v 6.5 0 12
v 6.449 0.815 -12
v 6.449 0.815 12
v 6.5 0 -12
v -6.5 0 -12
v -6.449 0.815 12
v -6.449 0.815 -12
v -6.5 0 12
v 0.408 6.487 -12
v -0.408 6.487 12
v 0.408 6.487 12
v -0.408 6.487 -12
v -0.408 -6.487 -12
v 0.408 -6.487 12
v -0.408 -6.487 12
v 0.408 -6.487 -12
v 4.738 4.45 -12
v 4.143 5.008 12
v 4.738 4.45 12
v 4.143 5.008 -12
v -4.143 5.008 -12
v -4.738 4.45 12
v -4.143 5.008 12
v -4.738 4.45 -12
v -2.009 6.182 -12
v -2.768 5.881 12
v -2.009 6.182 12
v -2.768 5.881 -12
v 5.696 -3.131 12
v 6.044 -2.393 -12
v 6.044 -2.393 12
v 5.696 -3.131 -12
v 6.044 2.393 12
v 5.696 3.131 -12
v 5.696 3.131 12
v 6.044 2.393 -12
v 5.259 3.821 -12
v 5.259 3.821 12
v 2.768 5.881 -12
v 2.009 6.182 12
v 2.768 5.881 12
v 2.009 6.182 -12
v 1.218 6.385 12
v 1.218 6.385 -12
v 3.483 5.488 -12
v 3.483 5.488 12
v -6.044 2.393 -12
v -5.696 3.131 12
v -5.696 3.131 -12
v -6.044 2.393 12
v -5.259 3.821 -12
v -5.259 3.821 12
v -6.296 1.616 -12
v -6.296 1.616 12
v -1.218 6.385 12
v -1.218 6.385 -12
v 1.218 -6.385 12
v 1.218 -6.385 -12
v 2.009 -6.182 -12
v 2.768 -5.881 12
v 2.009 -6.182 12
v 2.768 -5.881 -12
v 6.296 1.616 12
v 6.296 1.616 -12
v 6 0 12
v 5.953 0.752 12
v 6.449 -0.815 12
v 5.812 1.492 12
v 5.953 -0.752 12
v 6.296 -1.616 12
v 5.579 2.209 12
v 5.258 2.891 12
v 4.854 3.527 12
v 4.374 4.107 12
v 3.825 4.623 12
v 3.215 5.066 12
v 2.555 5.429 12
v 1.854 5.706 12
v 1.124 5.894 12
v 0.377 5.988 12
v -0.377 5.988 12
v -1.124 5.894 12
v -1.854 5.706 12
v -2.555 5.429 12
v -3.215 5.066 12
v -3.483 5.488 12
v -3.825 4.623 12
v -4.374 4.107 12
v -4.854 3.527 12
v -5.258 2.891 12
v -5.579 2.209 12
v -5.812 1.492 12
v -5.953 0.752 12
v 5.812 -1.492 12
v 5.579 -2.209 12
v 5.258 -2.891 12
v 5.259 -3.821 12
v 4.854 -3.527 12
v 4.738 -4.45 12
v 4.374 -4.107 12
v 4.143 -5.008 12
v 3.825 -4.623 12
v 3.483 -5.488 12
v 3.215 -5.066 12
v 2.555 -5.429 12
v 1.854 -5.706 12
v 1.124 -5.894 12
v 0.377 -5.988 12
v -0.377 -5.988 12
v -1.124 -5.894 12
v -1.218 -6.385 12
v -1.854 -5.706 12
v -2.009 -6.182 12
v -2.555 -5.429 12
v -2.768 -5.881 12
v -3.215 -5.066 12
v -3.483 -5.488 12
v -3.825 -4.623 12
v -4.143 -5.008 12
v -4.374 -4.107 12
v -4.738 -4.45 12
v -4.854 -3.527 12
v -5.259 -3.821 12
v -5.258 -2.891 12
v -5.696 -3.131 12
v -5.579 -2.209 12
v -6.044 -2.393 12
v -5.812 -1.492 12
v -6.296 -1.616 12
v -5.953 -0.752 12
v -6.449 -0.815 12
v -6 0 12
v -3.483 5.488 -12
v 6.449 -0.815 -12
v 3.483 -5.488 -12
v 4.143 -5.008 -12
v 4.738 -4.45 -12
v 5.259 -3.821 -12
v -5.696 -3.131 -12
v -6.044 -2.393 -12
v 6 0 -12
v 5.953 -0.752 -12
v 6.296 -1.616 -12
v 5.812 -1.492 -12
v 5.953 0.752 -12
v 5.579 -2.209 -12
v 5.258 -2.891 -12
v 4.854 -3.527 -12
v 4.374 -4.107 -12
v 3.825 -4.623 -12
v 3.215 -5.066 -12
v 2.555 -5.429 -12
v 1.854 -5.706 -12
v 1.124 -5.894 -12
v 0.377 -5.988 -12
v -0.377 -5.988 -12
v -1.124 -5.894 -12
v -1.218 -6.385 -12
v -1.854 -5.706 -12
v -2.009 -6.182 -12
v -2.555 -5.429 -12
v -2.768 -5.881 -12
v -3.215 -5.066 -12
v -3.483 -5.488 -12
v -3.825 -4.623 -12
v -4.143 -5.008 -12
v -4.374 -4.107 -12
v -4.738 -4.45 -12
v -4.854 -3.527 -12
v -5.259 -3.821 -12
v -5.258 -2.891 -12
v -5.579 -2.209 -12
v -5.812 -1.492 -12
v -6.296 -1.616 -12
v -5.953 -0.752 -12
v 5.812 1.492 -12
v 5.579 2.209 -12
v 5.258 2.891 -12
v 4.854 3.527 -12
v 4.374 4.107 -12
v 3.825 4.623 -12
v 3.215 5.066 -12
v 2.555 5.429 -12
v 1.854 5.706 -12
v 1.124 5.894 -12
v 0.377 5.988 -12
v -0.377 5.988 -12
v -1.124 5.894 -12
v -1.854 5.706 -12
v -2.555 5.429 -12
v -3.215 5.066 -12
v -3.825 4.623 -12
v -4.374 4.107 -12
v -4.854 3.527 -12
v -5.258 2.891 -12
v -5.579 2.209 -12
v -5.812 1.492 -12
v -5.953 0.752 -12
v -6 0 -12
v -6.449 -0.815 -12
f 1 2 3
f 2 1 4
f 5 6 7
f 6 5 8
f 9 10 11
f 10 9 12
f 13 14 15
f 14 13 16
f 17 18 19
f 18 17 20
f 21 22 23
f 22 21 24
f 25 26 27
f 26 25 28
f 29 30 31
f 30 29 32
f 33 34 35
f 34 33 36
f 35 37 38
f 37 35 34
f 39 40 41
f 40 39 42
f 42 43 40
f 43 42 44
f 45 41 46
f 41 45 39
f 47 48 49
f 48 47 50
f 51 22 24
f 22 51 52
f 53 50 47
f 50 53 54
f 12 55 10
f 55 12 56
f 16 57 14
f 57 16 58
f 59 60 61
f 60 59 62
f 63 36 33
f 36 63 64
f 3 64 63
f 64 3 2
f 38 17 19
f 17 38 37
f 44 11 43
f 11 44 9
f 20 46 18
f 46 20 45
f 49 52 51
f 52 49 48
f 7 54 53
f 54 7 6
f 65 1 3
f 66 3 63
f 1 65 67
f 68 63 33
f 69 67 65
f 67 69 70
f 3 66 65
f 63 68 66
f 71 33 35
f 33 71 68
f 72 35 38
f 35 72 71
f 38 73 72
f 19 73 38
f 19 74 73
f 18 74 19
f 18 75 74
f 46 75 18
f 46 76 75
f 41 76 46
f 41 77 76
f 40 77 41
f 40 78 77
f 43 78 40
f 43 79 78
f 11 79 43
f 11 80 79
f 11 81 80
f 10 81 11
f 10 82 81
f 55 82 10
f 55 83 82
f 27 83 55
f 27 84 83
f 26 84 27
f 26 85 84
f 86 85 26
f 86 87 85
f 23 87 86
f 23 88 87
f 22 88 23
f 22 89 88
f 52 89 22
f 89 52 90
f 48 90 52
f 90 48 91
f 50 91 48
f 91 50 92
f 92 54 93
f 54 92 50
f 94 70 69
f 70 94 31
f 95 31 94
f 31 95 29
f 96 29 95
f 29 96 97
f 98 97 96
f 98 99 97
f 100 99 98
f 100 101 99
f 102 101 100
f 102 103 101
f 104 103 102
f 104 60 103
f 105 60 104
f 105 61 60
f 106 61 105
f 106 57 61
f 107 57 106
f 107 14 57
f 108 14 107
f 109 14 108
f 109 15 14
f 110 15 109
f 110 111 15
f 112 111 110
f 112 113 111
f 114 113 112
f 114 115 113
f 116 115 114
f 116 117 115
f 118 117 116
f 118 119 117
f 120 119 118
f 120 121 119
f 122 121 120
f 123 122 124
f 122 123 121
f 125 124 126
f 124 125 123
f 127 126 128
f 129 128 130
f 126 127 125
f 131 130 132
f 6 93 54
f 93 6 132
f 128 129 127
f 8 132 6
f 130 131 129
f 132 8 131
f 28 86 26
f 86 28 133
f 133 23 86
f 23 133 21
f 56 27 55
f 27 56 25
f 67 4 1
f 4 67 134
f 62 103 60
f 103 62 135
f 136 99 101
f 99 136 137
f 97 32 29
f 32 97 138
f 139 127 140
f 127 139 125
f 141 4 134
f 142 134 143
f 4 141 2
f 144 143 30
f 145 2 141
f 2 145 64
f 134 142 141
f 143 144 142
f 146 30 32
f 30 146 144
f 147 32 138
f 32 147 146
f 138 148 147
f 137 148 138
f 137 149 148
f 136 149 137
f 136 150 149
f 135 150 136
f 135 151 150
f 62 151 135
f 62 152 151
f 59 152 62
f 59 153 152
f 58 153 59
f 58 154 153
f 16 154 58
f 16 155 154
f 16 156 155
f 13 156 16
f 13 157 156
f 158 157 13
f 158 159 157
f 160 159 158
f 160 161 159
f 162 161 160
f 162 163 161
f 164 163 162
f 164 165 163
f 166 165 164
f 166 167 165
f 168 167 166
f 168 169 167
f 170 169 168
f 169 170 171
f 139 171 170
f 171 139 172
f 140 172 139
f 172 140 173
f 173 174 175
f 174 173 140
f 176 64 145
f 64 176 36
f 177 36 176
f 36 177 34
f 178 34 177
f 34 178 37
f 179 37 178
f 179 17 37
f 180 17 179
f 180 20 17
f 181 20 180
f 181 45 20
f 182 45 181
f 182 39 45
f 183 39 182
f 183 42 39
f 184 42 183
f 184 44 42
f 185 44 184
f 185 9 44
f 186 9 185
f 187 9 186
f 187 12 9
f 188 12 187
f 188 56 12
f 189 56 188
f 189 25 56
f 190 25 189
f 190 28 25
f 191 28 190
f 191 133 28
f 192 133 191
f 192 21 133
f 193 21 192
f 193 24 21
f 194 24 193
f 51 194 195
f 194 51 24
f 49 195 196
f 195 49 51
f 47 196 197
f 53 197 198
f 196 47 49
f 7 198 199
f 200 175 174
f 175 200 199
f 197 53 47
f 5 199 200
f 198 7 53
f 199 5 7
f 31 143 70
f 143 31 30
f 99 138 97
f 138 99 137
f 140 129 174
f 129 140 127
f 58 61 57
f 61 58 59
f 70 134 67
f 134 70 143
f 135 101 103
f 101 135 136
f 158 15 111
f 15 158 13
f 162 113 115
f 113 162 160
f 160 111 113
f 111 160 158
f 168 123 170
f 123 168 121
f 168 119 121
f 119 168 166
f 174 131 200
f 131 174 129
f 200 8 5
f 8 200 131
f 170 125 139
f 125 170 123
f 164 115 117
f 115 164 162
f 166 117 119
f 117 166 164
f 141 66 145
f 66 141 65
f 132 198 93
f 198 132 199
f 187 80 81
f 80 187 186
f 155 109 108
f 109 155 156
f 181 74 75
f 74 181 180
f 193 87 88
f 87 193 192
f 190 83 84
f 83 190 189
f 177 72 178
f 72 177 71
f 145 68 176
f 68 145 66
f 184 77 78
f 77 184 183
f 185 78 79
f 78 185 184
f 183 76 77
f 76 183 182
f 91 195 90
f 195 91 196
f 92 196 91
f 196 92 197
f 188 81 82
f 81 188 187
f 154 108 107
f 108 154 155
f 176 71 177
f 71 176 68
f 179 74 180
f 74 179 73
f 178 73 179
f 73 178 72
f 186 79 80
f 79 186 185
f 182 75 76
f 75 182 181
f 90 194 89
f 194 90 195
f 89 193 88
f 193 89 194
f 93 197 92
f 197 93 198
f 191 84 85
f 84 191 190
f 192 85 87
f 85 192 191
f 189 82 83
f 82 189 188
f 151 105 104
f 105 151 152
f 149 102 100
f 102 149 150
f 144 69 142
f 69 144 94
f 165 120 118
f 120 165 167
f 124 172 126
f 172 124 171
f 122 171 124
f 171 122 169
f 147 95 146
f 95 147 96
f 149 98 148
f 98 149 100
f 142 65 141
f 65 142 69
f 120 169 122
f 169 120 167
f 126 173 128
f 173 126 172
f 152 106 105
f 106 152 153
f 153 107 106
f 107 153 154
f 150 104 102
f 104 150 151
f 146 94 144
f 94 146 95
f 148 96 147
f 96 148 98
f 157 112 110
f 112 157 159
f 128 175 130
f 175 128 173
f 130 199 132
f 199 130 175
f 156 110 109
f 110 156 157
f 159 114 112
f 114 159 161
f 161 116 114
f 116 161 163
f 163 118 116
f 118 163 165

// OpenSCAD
$fn = 50;


difference() {
	union() {
		translate(v = [0, 0, -12.0000000000]) {
			cylinder(h = 24, r = 6.5000000000);
		}
	}
	union() {
		translate(v = [0, 0, -100.0000000000]) {
			cylinder(h = 200, r = 6);
		}
	}
}
